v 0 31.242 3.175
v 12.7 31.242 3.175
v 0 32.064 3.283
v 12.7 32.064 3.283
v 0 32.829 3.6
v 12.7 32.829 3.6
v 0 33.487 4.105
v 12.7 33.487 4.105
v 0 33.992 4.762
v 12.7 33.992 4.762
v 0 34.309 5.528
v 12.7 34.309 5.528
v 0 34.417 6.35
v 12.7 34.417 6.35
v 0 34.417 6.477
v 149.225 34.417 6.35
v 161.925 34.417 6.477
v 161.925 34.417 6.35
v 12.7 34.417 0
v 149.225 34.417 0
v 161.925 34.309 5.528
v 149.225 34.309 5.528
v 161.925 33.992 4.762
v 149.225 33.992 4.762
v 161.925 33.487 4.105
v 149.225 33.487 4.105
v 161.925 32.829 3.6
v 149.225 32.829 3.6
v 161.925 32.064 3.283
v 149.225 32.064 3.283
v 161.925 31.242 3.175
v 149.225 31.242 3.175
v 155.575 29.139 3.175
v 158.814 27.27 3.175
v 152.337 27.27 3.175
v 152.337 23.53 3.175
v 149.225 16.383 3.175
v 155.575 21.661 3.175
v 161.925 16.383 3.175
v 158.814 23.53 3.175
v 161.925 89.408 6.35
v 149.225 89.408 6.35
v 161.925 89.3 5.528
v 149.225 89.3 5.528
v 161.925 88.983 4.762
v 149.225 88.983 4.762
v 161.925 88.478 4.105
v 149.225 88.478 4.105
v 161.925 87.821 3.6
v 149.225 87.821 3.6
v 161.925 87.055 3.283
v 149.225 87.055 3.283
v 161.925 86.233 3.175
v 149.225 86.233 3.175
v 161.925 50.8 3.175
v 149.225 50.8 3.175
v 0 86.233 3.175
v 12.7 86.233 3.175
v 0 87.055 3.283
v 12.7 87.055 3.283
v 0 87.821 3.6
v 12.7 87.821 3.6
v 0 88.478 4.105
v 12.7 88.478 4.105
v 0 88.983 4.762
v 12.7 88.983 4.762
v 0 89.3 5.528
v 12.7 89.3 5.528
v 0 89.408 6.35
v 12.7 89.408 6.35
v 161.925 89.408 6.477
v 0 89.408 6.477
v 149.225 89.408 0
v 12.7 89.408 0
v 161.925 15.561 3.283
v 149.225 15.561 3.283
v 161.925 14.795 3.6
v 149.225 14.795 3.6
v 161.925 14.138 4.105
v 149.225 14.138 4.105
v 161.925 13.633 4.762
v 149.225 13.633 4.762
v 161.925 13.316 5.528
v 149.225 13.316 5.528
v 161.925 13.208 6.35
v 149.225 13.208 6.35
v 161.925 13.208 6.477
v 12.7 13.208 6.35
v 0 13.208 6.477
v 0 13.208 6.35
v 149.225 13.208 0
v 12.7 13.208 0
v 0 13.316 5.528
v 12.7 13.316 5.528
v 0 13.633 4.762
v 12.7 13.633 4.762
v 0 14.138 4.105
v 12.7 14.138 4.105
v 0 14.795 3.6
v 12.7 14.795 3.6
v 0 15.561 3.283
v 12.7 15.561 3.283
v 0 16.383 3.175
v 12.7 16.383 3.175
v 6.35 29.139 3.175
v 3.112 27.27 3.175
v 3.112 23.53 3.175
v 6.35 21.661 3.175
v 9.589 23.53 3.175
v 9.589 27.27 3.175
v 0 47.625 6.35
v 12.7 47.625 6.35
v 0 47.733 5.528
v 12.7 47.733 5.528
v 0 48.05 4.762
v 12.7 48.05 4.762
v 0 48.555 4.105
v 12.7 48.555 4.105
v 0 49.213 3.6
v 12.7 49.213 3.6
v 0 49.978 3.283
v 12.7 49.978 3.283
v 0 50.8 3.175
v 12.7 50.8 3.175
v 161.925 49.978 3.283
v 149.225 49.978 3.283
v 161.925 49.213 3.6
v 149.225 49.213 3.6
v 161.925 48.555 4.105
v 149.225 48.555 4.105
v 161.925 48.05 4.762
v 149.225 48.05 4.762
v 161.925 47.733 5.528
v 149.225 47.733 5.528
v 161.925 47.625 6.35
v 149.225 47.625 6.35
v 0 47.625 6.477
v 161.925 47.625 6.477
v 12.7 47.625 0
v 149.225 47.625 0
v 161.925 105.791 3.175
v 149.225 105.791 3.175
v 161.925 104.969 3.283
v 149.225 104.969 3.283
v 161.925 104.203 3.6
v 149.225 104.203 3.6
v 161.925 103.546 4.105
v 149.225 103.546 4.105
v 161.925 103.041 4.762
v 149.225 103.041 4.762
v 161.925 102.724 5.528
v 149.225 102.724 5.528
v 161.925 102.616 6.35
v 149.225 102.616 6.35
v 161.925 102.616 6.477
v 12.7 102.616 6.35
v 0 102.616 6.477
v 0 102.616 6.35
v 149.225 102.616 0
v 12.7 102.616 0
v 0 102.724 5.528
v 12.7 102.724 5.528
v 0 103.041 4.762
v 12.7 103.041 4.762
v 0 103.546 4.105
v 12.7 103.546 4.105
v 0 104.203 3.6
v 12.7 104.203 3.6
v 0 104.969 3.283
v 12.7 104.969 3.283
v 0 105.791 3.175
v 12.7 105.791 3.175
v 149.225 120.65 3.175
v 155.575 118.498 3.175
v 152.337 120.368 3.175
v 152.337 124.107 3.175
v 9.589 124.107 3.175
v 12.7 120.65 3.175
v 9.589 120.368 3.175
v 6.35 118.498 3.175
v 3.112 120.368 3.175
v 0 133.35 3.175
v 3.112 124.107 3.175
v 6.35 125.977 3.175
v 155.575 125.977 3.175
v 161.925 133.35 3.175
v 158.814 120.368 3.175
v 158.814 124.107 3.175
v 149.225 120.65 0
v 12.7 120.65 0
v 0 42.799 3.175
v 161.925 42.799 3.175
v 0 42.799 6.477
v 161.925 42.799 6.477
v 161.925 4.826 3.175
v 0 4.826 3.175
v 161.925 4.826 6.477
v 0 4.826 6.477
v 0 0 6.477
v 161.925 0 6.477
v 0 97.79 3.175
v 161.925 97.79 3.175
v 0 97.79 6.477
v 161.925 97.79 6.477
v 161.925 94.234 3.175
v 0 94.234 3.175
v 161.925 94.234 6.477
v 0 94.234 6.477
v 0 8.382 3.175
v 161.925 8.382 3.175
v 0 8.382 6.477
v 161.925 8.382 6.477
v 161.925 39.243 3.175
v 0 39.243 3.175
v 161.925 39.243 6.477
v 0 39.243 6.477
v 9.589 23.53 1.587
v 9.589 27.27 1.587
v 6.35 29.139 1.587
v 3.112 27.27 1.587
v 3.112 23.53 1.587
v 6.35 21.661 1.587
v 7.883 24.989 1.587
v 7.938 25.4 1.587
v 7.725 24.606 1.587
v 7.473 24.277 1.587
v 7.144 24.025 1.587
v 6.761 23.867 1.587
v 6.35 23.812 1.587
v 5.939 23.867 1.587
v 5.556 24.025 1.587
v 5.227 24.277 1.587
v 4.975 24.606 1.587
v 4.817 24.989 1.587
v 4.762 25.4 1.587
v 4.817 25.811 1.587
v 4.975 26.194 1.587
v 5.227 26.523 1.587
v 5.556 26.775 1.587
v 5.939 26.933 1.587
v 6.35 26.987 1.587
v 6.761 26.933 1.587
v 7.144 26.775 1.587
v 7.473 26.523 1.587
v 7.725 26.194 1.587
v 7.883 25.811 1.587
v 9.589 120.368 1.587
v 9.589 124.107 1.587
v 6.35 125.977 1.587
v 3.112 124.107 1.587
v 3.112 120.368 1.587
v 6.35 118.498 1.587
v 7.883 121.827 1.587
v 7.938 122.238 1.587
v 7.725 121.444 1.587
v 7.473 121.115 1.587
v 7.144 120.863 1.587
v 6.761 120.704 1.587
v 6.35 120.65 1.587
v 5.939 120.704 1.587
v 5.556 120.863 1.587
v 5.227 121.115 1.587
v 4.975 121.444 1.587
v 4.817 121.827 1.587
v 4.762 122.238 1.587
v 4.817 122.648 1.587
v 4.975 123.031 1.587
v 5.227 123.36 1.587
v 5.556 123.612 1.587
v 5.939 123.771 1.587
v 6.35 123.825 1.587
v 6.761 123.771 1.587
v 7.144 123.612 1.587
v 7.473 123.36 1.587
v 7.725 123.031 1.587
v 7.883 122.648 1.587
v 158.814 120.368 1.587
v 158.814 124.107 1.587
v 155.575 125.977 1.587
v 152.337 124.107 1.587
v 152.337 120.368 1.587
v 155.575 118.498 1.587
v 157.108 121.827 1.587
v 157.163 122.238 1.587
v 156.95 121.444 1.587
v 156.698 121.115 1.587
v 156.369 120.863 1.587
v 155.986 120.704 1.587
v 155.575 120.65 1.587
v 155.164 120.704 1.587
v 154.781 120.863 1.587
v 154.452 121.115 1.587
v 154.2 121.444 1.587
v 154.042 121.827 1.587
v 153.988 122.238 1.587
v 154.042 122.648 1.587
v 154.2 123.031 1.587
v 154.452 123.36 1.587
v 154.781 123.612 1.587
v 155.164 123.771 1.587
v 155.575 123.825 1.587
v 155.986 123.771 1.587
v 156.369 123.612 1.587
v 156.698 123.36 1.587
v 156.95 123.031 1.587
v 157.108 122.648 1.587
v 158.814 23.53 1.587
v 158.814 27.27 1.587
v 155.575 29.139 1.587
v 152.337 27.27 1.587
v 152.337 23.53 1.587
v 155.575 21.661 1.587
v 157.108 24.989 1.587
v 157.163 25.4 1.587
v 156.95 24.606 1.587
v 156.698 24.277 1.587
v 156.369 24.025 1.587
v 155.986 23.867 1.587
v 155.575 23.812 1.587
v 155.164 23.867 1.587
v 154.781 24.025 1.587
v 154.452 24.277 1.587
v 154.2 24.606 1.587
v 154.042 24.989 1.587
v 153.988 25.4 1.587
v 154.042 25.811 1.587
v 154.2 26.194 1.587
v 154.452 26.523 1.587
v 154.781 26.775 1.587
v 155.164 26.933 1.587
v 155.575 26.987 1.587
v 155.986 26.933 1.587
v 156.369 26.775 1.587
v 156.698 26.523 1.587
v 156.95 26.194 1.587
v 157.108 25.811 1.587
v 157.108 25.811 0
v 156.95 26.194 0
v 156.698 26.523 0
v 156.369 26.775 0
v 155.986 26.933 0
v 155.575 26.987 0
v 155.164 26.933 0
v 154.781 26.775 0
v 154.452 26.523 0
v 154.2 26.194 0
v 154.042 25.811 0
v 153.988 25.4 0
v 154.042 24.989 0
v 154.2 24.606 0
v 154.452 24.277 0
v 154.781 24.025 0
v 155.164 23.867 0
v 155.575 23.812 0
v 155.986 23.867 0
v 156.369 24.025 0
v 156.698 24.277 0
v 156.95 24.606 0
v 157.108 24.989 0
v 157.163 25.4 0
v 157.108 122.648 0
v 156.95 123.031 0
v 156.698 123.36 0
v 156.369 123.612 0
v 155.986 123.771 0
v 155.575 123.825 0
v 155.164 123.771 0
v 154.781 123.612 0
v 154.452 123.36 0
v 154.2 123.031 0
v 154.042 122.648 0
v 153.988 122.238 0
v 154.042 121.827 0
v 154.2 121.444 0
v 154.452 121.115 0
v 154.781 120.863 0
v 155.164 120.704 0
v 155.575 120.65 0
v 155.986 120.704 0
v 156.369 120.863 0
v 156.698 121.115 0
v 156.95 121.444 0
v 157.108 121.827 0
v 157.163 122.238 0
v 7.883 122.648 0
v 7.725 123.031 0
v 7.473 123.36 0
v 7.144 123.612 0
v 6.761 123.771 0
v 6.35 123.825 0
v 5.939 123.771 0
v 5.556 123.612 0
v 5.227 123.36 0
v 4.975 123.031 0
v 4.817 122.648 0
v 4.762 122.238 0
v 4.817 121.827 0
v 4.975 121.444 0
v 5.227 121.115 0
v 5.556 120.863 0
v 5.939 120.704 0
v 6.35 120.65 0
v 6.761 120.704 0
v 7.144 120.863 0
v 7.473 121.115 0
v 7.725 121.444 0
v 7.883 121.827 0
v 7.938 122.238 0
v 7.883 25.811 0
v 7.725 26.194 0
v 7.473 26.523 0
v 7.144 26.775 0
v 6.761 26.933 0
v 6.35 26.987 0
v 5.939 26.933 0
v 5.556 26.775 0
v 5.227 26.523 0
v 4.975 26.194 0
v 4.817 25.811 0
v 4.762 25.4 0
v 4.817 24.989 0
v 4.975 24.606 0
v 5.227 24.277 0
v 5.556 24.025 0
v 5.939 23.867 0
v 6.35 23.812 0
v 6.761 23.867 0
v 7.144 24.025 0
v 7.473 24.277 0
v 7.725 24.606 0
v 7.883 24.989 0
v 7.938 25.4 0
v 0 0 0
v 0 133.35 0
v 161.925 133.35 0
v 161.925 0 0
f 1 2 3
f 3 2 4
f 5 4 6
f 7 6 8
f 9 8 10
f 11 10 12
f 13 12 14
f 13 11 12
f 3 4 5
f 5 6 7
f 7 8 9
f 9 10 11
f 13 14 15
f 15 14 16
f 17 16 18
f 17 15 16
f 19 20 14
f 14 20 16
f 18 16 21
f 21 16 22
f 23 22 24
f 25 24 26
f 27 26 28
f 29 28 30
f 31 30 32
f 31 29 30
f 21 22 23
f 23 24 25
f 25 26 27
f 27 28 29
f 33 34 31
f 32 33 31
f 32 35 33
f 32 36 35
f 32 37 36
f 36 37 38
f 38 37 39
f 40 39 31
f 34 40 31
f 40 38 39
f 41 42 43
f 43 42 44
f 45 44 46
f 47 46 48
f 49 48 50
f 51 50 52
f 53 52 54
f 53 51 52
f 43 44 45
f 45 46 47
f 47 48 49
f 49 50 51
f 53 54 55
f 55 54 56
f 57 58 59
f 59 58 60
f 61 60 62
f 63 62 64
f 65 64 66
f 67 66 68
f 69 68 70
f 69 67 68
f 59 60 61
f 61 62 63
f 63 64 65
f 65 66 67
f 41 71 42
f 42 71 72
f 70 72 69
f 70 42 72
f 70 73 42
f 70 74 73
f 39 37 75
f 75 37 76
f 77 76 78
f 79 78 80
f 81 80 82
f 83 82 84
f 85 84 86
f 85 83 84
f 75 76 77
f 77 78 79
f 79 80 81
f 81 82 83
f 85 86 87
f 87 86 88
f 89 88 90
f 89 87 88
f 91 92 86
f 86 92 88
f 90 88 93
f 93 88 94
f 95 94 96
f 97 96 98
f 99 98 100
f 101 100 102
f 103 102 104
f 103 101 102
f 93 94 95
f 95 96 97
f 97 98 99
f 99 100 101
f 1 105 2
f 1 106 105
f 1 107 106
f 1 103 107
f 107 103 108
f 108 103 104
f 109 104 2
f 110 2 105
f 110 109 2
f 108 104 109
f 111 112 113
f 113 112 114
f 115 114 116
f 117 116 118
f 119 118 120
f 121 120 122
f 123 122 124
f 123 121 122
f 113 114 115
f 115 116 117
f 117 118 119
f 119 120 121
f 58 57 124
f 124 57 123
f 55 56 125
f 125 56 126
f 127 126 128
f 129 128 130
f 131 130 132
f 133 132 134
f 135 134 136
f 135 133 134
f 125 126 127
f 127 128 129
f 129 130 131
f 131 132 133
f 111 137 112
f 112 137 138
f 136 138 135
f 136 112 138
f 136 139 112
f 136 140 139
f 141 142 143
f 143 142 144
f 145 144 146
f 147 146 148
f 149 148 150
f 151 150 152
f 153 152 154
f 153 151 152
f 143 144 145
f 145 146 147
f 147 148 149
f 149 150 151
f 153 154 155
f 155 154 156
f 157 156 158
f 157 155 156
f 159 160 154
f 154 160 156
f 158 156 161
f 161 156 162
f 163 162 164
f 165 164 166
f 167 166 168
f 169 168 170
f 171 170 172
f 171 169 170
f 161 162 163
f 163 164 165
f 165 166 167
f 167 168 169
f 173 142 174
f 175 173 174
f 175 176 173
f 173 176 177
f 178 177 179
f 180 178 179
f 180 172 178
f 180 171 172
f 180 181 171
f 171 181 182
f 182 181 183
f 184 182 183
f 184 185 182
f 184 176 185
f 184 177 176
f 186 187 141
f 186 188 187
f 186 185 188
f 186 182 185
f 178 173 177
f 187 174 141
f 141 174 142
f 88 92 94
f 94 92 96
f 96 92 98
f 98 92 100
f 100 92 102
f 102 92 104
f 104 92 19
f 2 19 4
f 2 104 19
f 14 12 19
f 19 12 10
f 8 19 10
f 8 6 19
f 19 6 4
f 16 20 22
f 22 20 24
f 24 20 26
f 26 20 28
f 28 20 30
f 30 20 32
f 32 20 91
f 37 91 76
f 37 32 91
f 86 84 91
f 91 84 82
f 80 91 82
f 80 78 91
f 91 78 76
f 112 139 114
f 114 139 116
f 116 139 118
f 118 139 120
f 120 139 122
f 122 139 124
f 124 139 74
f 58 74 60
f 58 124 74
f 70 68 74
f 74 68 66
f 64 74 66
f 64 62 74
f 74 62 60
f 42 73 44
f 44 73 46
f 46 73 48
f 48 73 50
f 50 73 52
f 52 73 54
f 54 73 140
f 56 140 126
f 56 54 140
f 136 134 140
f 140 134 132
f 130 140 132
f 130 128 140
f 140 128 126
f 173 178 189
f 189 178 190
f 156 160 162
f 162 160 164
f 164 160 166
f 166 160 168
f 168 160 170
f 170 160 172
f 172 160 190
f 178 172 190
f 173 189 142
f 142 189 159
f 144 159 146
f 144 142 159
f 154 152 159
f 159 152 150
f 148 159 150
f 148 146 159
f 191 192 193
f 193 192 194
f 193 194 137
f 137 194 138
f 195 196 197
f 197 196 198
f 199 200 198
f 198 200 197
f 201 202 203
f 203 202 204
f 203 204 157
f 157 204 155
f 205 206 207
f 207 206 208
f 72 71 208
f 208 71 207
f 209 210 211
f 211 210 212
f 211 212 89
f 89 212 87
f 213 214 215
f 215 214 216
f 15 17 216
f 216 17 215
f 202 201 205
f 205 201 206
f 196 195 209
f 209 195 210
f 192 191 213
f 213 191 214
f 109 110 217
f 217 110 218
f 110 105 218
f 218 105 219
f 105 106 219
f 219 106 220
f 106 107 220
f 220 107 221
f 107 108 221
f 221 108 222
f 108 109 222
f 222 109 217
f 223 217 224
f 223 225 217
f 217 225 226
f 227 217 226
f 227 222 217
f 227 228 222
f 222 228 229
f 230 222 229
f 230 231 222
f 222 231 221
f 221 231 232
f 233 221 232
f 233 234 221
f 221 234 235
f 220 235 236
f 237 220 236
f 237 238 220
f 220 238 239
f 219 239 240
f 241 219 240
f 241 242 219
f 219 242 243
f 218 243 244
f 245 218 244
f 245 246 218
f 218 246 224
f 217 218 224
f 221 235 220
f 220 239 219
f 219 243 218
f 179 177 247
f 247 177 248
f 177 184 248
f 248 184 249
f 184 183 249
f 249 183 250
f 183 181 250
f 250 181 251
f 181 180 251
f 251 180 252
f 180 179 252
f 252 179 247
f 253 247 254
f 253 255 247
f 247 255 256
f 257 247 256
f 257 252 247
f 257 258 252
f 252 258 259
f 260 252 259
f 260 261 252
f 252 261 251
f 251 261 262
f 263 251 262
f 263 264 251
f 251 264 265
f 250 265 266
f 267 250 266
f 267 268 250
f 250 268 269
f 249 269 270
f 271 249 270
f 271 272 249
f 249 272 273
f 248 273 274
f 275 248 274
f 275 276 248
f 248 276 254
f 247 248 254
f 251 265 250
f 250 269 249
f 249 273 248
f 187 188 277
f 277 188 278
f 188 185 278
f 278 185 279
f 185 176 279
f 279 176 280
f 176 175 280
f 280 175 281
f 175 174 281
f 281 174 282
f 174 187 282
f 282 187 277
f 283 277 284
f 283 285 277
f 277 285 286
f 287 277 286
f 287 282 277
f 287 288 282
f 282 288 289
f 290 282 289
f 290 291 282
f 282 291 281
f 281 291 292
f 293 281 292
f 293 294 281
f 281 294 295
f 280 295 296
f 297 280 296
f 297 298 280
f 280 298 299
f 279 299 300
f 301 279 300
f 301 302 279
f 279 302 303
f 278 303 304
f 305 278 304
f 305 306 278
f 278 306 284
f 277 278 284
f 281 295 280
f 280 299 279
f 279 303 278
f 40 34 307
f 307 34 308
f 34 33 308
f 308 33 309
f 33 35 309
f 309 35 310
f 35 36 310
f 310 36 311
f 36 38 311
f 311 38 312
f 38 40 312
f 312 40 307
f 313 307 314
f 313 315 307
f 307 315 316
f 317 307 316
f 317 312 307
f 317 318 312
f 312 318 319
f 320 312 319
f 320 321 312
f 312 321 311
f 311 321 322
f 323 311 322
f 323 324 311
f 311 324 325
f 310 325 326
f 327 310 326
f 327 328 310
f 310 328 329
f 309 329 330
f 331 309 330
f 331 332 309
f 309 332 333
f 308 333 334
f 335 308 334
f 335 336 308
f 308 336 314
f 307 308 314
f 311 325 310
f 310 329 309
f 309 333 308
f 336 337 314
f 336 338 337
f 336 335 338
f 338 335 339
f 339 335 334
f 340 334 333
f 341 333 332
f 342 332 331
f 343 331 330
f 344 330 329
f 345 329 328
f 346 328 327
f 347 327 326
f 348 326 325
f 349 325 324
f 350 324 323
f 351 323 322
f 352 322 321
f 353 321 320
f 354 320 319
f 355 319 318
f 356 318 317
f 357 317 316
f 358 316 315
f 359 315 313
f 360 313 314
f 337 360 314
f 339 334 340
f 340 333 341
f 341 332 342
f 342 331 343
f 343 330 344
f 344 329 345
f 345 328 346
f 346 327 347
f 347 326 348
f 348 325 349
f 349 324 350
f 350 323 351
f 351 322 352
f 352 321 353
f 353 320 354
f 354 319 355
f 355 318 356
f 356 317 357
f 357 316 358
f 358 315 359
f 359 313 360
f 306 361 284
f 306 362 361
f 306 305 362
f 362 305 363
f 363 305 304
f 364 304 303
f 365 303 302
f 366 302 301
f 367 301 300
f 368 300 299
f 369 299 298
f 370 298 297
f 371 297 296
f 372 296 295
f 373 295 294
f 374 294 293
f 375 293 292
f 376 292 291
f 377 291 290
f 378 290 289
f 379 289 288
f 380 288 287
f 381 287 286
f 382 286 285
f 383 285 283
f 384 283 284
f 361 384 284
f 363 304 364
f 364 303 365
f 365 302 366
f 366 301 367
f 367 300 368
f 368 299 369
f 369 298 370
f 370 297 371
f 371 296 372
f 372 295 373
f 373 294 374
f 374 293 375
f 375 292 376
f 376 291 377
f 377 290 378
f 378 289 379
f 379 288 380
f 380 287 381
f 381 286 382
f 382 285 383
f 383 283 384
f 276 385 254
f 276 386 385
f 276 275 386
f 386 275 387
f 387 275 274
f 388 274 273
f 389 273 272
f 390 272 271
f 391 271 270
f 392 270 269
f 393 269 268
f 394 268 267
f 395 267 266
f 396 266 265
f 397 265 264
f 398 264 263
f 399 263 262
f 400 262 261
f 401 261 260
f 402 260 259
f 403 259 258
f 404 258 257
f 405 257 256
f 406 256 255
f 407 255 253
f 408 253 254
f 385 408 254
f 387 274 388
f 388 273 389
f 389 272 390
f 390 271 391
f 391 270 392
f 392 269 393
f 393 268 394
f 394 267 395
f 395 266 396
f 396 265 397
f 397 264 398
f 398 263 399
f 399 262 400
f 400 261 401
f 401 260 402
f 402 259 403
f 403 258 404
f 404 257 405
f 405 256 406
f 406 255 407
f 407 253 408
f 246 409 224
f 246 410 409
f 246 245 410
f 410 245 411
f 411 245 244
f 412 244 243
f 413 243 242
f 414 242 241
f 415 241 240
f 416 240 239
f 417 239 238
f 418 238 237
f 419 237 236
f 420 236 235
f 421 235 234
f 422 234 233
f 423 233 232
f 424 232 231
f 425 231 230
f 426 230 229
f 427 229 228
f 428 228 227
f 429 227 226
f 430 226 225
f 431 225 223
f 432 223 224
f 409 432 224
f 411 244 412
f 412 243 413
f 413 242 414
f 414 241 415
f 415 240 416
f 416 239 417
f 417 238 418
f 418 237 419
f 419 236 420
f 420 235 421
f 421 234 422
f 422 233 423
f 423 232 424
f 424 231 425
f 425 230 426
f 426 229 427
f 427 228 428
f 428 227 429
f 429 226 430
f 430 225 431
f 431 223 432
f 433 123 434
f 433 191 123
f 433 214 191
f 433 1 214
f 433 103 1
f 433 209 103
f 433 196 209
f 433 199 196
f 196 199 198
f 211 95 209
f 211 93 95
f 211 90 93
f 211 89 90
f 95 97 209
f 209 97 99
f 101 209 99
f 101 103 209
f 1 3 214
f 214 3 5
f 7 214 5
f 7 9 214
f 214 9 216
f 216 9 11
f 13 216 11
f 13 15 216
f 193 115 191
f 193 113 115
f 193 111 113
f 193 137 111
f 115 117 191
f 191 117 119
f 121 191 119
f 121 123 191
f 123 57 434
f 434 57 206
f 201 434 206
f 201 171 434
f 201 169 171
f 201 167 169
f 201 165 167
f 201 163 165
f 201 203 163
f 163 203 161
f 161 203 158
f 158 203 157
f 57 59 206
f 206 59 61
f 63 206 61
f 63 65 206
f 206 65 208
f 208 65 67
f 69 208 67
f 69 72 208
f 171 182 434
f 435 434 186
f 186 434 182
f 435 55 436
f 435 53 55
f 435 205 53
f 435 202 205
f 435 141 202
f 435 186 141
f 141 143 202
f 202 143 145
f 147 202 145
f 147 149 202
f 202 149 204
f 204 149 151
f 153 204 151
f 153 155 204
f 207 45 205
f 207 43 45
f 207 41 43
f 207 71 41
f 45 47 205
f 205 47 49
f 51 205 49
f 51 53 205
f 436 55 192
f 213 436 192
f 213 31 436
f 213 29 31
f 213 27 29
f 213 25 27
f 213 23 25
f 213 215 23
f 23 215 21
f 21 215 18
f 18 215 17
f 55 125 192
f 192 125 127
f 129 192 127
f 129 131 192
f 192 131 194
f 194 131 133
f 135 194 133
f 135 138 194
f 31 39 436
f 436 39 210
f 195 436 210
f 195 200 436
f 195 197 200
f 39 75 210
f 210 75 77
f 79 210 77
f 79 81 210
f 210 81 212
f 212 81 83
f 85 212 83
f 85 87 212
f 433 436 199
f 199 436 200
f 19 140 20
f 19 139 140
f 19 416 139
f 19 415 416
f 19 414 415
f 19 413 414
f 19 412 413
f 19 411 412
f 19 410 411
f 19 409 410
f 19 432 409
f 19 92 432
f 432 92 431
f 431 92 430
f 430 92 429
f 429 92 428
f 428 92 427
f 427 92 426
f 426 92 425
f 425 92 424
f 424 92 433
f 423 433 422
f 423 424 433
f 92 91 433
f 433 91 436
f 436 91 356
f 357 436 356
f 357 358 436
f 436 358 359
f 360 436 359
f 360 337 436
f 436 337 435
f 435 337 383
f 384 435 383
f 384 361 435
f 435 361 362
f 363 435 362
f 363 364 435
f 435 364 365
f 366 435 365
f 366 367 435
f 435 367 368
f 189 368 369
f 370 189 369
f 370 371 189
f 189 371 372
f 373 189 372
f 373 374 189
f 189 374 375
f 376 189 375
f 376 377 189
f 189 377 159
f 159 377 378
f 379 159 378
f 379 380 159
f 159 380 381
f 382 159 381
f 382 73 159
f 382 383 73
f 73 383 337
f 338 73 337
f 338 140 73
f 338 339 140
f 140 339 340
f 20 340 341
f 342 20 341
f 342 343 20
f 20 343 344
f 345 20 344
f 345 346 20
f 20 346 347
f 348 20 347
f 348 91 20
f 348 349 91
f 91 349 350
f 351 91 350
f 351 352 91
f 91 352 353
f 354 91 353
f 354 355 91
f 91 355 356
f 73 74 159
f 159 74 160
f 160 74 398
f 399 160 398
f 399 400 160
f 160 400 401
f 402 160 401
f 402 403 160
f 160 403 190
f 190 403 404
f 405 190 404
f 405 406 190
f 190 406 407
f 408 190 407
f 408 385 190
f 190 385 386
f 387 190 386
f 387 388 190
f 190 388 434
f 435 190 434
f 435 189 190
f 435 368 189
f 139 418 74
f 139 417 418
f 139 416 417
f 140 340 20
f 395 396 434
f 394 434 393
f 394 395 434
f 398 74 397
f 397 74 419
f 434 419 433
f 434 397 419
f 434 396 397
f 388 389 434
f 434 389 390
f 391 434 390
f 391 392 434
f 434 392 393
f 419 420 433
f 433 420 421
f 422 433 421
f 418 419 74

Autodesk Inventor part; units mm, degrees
ref_plane "YZ Plane" through (0, 0, 0) normal (1, 0, 0) x (0, 1, 0)
ref_plane "XZ Plane" through (0, 0, 0) normal (0, 1, 0) x (-1, 0, 0)
ref_plane "XY Plane" through (0, 0, 0) normal (0, 0, 1) x (1, 0, 0)
sketch "Sketch1" plane through (0, 0, 0) normal (0, 0, 1) x (1, 0, 0)
  line L0 (0, 0) -> (161.925, 0)
  line L1 (161.925, 0) -> (161.925, 133.35)
  line L2 (161.925, 133.35) -> (0, 133.35)
  line L3 (0, 133.35) -> (0, 0)
  dimension "d0" = 161.925
  dimension "d1" = 133.35
extrude "Extrusion1" add sketch "Sketch1" along normal blind 3.175
sketch "Sketch6" plane through (0, 0, 0) normal (0, 0, -1) x (-1, 0, 0)
  circle A0 centre (-155.575, 122.2375) radius 1.5875
  circle A1 centre (-6.35, 122.2375) radius 1.5875
  circle A2 centre (-155.575, 25.4) radius 1.5875
  circle A3 centre (-6.35, 25.4) radius 1.5875
extrude "Extrusion6" cut sketch "Sketch6" against normal blind 3.175
sketch "Sketch7" plane through (0, 0, 3.175) normal (0, 0, 1) x (1, 0, 0)
  circle A0 centre (155.575, 122.2375) radius 1.5875 projected
  circle A1 centre (6.35, 122.2375) radius 1.5875 projected
  line L0 (9.5885, 120.3678) -> (6.35, 118.498)
  line L1 (6.35, 118.498) -> (3.1115, 120.3678)
  line L2 (3.1115, 120.3678) -> (3.1115, 124.1072)
  line L3 (3.1115, 124.1072) -> (6.35, 125.977)
  line L4 (6.35, 125.977) -> (9.5885, 124.1072)
  line L5 (9.5885, 124.1072) -> (9.5885, 120.3678)
  line L6 (158.8135, 120.3678) -> (155.575, 118.498)
  line L7 (155.575, 118.498) -> (152.3365, 120.3678)
  line L8 (152.3365, 120.3678) -> (152.3365, 124.1072)
  line L9 (152.3365, 124.1072) -> (155.575, 125.977)
  line L10 (155.575, 125.977) -> (158.8135, 124.1072)
  line L11 (158.8135, 124.1072) -> (158.8135, 120.3678)
  circle A2 centre (155.575, 25.4) radius 1.5875 projected
  circle A3 centre (6.35, 25.4) radius 1.5875 projected
  line L12 (9.5885, 23.5303) -> (6.35, 21.6605)
  line L13 (6.35, 21.6605) -> (3.1115, 23.5303)
  line L14 (3.1115, 23.5303) -> (3.1115, 27.2697)
  line L15 (3.1115, 27.2697) -> (6.35, 29.1395)
  line L16 (6.35, 29.1395) -> (9.5885, 27.2697)
  line L17 (9.5885, 27.2697) -> (9.5885, 23.5303)
  line L18 (158.8135, 23.5303) -> (155.575, 21.6605)
  line L19 (155.575, 21.6605) -> (152.3365, 23.5303)
  line L20 (152.3365, 23.5303) -> (152.3365, 27.2697)
  line L21 (152.3365, 27.2697) -> (155.575, 29.1395)
  line L22 (155.575, 29.1395) -> (158.8135, 27.2697)
  line L23 (158.8135, 27.2697) -> (158.8135, 23.5303)
  point P0 (9.5885, 122.2375)
  point P1 (158.8135, 122.2375)
extrude "Extrusion7" cut sketch "Sketch7" against normal blind 1.5875
sketch "Sketch11" plane through (0, 0, 3.175) normal (0, 0, 1) x (1, 0, 0)
  line L0 (161.925, 0) -> (161.925, 133.35) projected
  line L1 (0, 133.35) -> (0, 0) projected
  line L2 (0, 102.616) -> (161.925, 102.616)
  line L3 (0, 89.408) -> (161.925, 89.408)
  line L4 (0, 97.79) -> (161.925, 97.79)
  line L5 (0, 94.234) -> (161.925, 94.234)
  line L6 (0, 4.826) -> (161.925, 4.826)
  line L7 (0, 8.382) -> (161.925, 8.382)
  line L8 (0, 0) -> (161.925, 0)
  line L9 (0, 13.208) -> (161.925, 13.208)
  line L10 (0, 47.625) -> (161.925, 47.625)
  line L11 (0, 34.417) -> (161.925, 34.417)
  line L12 (0, 42.799) -> (161.925, 42.799)
  line L13 (0, 39.243) -> (161.925, 39.243)
  line L14 (161.925, 133.35) -> (0, 133.35) projected
  dimension "d83" = 4.826
  dimension "d84" = 3.556
  dimension "d85" = 4.826
  dimension "d86" = 4.826
  dimension "d87" = 3.556
  dimension "d88" = 4.826
  dimension "d89" = 4.826
  dimension "d90" = 3.556
  dimension "d91" = 4.826
  dimension "d96" = 30.861
  dimension "d98" = 35.56
extrude "Extrusion10" add sketch "Sketch11" along normal blind 3.302 contours L8 L1 L6 L0 | L7 L1 L9 L0 | L11 L1 L13 L0 | L12 L1 L10 L0 | L3 L1 L5 L0 | L4 L1 L2 L0
sketch "Sketch15" plane through (0, 0, 3.175) normal (0, 0, 1) x (1, 0, 0)
  line L0 (0, 102.616) -> (161.925, 102.616) projected
  line L1 (12.7, 120.65) -> (149.225, 120.65)
  line L2 (149.225, 120.65) -> (149.225, 102.616)
  line L3 (149.225, 102.616) -> (12.7, 102.616)
  line L4 (12.7, 102.616) -> (12.7, 120.65)
  point P0 (0, 0)
sketch "Sketch16" plane through (0, 0, 3.175) normal (0, 0, 1) x (1, 0, 0)
  line L0 (0, 47.625) -> (161.925, 47.625) projected
  line L1 (161.925, 89.408) -> (0, 89.408) projected
  line L2 (12.7, 89.408) -> (149.225, 89.408)
  line L3 (149.225, 89.408) -> (149.225, 47.625)
  line L4 (149.225, 47.625) -> (12.7, 47.625)
  line L5 (12.7, 47.625) -> (12.7, 89.408)
  point P0 (0, 0)
sketch "Sketch17" plane through (0, 0, 3.175) normal (0, 0, 1) x (1, 0, 0)
  line L0 (0, 13.208) -> (161.925, 13.208) projected
  line L1 (161.925, 34.417) -> (0, 34.417) projected
  line L2 (12.7, 34.417) -> (149.225, 34.417)
  line L3 (149.225, 34.417) -> (149.225, 13.208)
  line L4 (149.225, 13.208) -> (12.7, 13.208)
  line L5 (12.7, 13.208) -> (12.7, 34.417)
  point P0 (0, 0)
extrude "Extrusion14" cut sketch "Sketch15" against normal blind 3.175
extrude "Extrusion15" cut sketch "Sketch16" against normal blind 3.175
extrude "Extrusion16" cut sketch "Sketch17" against normal blind 3.175
fillet "Fillet5" radius 3.175 10 edges at (6.35, 102.616, 3.175) (155.575, 102.616, 3.175) (155.575, 47.625, 3.175) (6.35, 47.625, 3.175) (6.35, 13.208, 3.175) (155.575, 13.208, 3.175) (6.35, 89.408, 3.175) (155.575, 89.408, 3.175) (155.575, 34.417, 3.175) (6.35, 34.417, 3.175)
properties part number "control pod wall ROUGH"
